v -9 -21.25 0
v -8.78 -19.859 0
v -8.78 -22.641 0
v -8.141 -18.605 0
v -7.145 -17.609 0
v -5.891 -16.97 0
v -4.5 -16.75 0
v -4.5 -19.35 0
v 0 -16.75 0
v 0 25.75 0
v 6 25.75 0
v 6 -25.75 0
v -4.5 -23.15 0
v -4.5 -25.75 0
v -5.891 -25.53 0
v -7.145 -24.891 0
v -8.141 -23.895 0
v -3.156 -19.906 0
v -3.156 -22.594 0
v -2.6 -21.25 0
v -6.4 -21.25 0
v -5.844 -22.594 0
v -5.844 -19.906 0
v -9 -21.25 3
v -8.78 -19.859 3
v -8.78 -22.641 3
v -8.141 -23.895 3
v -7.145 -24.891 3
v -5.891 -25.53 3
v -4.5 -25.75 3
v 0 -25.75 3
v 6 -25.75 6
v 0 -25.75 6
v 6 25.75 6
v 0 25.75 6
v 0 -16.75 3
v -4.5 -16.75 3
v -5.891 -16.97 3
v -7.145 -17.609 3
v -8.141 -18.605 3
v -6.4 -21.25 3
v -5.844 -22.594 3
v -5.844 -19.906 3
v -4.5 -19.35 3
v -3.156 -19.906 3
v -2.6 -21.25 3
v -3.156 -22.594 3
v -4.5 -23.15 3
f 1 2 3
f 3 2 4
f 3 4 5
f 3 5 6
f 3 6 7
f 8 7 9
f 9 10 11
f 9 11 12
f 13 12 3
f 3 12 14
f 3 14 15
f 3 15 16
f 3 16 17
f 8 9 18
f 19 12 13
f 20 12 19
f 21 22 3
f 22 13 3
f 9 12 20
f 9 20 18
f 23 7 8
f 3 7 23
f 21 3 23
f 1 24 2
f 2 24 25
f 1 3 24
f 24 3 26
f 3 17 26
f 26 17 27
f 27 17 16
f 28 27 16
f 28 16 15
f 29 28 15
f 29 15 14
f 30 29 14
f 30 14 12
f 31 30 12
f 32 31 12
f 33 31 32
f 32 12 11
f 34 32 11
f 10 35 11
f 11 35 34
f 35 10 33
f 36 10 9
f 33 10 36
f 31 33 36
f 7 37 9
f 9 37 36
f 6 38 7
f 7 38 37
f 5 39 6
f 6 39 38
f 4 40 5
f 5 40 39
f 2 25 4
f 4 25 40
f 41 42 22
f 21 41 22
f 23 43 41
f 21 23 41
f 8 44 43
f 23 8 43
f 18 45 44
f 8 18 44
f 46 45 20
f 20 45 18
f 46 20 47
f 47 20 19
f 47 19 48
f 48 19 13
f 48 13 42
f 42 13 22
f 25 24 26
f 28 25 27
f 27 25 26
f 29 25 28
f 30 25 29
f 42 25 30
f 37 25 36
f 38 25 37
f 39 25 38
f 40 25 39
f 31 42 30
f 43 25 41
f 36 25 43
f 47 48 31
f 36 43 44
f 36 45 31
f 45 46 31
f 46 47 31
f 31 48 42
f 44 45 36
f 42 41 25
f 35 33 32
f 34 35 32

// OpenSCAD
// file: configuration.scad
//------------------------------------
//-- Miniskybot 2 configuration file
//------------------------------------

//-- drills
drill_M3 = 3.8;

//-- captive Nuts
nut_h = 3.4;
nut_radius = 7.5/2;

//------------------------------------------------
//-- Servo parameters
//-- See the doc/futaba-doc2.dxf file
//------------------------------------------------
//-- Servo futaba 3003 dimensions
servo_c1 = 20;
servo_c2 = 7.5;
servo_c3 = 29;//CGS MOD
servo_c4 = 41;  // CGS MOD
servo_c5 = 30.3;
servo_c6 = 10;
servo_c7 = 11.6;
servo_c8 = 4.1;
servo_c9 = 5.2;
servo_c10 = 9.6;

//-------------------------------------------
//-- Battery holder parameters
//-- See the doc/battery_holder.dxf file
//-------------------------------------------
battery_c1 = 49;
battery_holder_front_width = 53.5;
battery_c2 = 51.5;
battery_holder_front_gap = 8+0.5;
battery_holder_front_thickness = 0.35*4;
battery_c3 = 12+battery_holder_front_gap;
battery_ear_diam = 9;
battery_ear_h = 3;
battery_top_gap = 1;  
//-- Real battery height whith batteries inserted
battery_height = battery_c3 + battery_top_gap;

//----------------------------------
//-- Rear part parameters
//-- See the doc/rear-doc.dxf file
//----------------------------------
rear_c1 = servo_c2 + 3;
rear_c2 = servo_c3*2;
rear_c3 = servo_c1 + battery_height -battery_ear_h;
rear_edge_rad = 3;

//-- Ball caster parameters
WallThickness = 2.25; //thickness of the retaining wall
BallSize = 16.2+0.5;  //diameter of  your ball bearing.
Airgap = .65;  // Gap between ball and wall  
BallProtrude = .43; //percentage of ball radius sticking out 
WheelDiameter = 56;  //what size wheels you will use.

//-- Wheels parameters
wheels_diam = 56;
wheel_height = 6;
wheel_gap = 1;

//-- ultrasounds
ultrasound_hole = 16.5;
ultrasound_base_lx = 24+1;
ultrasound_base_ly = 20+1;
ultrasound_base_lz = 3;
ultrasound_length = 12.5;
ultrasound_drill_1 = [-9,7,0];
ultrasound_drill_2 = [9,-8,0];
// main file
//---------------------------------------------------------
//-- Battery holder for Miniskybot 2. It is based on
//-- the parameterized batery_holder of Miniskybot 1, but
//-- with 4 "ears" for screwing to the chassis
//---------------------------------------------------------
include <configuration.scad>

//-------------------------------
//-- Battery holder ears
//-- Parameters:
//--   do: outer diameter
//--   h : ear height
//-------------------------------
module ear(do, h)
{
  translate([-do/2,do/2,0])
  difference() {
    union() {
      cylinder(r=do/2, h=h,$fn=20);

      translate([do/4,0,h/2])
      cube([do/2,do,h],center=true);
    }
    cylinder(r=drill_M3/2, h=h+10,$fn=8,center=true);
  }
}

translate([0,-battery_c2/2,0]) {
  ear(do=battery_ear_diam, h=battery_ear_h);
  cube([6,battery_c2,battery_ear_h+3]);
}
